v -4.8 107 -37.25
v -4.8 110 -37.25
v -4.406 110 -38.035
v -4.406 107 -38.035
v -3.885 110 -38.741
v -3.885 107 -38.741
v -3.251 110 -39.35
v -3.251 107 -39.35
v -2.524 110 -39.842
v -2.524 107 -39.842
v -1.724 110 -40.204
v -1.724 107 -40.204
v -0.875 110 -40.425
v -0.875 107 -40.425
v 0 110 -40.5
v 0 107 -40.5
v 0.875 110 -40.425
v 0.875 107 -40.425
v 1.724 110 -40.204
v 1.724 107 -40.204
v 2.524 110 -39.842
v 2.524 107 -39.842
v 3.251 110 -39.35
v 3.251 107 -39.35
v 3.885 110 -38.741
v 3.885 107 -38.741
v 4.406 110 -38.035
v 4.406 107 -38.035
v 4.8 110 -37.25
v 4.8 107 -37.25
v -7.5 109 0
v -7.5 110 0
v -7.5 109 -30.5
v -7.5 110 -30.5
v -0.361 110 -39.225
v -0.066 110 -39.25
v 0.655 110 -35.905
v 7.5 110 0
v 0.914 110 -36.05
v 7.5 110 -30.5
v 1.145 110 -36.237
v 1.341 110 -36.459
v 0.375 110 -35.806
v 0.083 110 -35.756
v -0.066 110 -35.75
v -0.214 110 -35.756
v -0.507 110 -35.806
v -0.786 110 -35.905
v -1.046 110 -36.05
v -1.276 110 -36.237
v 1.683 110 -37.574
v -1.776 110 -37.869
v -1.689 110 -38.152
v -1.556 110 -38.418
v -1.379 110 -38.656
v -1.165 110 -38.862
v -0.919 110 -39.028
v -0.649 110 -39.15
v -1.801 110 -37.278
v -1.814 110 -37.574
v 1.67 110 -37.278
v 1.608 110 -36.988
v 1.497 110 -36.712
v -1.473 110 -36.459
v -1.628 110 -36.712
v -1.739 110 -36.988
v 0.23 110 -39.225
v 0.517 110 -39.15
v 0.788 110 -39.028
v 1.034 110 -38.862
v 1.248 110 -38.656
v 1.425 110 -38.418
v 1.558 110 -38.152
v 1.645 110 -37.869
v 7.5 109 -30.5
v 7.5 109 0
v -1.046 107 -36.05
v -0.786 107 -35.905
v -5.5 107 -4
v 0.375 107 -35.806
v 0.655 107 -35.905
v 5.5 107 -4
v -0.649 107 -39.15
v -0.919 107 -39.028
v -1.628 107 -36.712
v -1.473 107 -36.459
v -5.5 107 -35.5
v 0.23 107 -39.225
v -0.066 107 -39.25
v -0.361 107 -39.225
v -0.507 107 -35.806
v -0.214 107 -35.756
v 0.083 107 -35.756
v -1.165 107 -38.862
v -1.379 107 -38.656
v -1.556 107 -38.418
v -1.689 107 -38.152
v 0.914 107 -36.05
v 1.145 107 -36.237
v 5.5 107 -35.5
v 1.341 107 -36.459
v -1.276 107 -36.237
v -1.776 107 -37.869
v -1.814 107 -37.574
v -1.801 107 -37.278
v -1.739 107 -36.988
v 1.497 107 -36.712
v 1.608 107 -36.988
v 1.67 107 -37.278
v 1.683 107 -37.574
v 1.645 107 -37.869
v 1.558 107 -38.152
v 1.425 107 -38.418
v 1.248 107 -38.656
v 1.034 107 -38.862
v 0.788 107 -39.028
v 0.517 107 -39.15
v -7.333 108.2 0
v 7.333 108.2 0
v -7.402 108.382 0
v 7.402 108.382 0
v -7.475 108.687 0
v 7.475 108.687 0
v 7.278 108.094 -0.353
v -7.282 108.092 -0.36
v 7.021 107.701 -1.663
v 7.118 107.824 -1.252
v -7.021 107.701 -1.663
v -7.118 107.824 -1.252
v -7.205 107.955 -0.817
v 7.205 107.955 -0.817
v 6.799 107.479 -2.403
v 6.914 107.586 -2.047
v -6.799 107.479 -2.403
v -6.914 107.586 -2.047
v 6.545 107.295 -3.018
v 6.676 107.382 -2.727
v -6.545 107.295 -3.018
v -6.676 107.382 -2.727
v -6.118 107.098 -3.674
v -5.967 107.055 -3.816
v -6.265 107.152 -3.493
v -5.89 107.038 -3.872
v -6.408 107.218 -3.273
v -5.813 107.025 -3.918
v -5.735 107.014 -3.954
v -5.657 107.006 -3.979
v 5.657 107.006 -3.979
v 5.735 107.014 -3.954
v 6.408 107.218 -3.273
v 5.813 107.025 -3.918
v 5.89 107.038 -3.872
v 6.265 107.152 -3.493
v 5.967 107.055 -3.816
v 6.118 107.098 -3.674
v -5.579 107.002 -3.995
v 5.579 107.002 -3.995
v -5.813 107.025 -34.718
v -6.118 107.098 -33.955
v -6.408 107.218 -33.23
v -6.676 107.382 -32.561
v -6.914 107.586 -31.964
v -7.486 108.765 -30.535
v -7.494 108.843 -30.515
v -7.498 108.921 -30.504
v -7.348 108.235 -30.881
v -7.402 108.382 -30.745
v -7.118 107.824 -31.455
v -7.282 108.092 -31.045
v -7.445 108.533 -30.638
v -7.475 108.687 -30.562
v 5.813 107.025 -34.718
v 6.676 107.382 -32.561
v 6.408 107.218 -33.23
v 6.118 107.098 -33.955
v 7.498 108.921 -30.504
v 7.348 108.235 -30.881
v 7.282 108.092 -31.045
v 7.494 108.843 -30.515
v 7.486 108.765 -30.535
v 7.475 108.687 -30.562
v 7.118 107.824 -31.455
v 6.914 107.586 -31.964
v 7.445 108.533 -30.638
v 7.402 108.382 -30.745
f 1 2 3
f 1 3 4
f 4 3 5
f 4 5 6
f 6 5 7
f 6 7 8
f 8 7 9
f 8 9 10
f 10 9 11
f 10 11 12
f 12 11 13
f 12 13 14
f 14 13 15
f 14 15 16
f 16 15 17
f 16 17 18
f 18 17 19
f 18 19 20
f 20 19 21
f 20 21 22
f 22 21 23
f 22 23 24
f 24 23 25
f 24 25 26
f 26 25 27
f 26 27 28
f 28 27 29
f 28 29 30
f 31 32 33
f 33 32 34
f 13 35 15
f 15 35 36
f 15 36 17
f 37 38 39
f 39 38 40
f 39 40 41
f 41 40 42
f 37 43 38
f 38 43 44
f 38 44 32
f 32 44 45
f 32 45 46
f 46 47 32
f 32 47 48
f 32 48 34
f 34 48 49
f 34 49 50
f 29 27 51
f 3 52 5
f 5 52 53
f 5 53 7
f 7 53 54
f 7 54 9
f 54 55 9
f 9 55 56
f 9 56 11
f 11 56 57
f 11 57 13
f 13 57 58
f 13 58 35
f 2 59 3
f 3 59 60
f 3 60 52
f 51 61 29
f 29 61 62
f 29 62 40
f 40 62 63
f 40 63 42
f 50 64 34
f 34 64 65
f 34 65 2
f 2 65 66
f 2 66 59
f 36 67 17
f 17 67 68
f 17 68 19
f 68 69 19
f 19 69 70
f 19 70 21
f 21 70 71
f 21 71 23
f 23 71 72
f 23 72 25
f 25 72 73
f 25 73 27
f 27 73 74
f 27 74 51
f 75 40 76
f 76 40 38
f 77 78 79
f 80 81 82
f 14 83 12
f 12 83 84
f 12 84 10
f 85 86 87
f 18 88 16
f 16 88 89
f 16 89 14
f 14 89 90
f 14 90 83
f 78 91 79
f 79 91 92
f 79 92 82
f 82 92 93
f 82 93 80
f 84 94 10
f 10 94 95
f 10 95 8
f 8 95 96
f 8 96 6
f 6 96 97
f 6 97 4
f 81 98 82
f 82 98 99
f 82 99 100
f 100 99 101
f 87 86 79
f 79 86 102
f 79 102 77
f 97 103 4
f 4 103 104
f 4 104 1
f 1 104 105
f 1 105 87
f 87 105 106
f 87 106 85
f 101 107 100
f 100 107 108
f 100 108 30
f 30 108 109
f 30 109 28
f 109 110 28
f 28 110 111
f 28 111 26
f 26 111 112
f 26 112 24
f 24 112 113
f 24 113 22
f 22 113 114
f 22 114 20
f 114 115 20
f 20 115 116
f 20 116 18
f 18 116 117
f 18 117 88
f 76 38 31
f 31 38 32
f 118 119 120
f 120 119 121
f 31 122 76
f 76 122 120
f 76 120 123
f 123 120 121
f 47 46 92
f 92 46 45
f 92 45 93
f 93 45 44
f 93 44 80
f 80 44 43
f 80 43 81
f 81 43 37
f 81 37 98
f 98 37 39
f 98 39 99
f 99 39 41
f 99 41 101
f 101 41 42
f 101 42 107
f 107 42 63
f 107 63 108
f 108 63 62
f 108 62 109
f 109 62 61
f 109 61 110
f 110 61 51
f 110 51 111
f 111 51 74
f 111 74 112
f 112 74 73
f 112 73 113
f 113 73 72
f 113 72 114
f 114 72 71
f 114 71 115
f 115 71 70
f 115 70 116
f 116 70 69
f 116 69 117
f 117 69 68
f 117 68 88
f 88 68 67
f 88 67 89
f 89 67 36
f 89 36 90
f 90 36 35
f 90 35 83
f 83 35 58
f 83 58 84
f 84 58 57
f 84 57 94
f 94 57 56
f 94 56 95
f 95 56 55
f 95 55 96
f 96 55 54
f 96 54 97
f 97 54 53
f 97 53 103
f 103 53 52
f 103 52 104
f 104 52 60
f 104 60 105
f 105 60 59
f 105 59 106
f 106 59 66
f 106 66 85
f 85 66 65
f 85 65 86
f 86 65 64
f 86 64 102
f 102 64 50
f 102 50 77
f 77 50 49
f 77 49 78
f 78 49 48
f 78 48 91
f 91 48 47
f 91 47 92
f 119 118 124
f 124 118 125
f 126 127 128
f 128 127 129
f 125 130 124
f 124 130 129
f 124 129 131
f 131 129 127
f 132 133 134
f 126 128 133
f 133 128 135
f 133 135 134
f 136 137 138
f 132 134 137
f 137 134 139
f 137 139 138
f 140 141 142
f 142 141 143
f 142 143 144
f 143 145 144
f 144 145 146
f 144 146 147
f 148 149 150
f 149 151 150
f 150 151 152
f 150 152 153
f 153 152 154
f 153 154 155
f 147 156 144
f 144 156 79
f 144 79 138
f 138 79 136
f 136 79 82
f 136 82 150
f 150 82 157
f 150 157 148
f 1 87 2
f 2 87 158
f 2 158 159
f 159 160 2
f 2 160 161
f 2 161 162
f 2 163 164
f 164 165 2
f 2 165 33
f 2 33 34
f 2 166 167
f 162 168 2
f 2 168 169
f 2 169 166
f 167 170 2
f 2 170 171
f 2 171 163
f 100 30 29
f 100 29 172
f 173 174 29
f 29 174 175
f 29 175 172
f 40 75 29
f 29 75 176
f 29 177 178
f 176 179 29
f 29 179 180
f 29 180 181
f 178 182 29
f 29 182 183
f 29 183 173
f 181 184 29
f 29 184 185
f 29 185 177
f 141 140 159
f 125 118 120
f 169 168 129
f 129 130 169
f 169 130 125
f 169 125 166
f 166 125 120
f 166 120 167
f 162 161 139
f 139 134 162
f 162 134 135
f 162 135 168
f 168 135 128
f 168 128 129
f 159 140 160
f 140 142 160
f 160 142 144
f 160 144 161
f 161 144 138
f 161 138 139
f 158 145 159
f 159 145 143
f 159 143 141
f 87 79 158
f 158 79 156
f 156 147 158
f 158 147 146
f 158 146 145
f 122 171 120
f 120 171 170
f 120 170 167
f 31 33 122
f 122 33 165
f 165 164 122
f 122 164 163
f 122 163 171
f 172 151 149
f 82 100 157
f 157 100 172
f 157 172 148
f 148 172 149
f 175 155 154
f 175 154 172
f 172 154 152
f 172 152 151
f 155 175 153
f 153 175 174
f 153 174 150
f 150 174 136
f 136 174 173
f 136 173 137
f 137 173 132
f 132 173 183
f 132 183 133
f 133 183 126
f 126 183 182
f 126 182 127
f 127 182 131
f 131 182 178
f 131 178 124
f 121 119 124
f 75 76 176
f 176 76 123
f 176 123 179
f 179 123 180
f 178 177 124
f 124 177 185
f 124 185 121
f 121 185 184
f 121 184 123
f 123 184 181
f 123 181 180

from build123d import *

# Parameters (mm, degrees)
CROQUIS1_W              = 15
CROQUIS1_H              = 3
SALIENTE_EXTRUIR1_DEPTH = 40.5
CROQUIS2_OUTSIDE_W      = 25.658
CROQUIS2_OUTSIDE_H      = 51.158
CROQUIS2_OUTSIDE_W_2    = 15
CROQUIS2_OUTSIDE_H_2    = 40.5
CROQUIS2_OUTSIDE_R      = 1.75
CORTAR_EXTRUIR1_DEPTH   = 40.5
CHAFL_N1_SIZE           = 4
CHAFL_N1_SIZE2          = 1.2
CHAFL_N2_SIZE           = 4
CHAFL_N2_SIZE2          = 10
REDONDEO1_R             = 2
REDONDEO2_R             = 5.169615


with BuildPart() as part:
    # Croquis1 → Saliente-Extruir1 (new body)
    with BuildSketch(Plane.XY):
        with Locations((0, 108.5)):
            Rectangle(CROQUIS1_W, CROQUIS1_H)
    extrude(amount=-SALIENTE_EXTRUIR1_DEPTH)

    # Croquis2 outside → Cortar-Extruir1 (cut)
    # profile 1 of 2: a face of its own
    with BuildSketch(Plane.XZ.offset(-107)):
        with Locations((0, -20.25)):
            Rectangle(CROQUIS2_OUTSIDE_W, CROQUIS2_OUTSIDE_H)
        with Locations((0, -20.25)):
            Rectangle(CROQUIS2_OUTSIDE_W_2, CROQUIS2_OUTSIDE_H_2, mode=Mode.SUBTRACT)
    # profile 2 of 2: a face of its own
    with BuildSketch(Plane.XZ.offset(-107)):
        with Locations(Location((-0.065549886, -37.5, 0), (0, 0, 270))):
            Circle(CROQUIS2_OUTSIDE_R)
    extrude(amount=-CORTAR_EXTRUIR1_DEPTH, mode=Mode.SUBTRACT)

    # Chaflán1
    chafl_n1_edges = [part.edges().sort_by_distance(p)[0] for p in [
        (0, 107, 0),
    ]]
    chafl_n1_side = [part.faces().sort_by_distance(p)[0] for p in [
        (0.001054835, 107, -19.972411249),
    ]]
    chamfer(chafl_n1_edges, length=CHAFL_N1_SIZE, length2=CHAFL_N1_SIZE2, reference=chafl_n1_side[0])

    # Chaflán2
    chafl_n2_edges = [part.edges().sort_by_distance(p)[0] for p in [
        (7.5, 108.5, -40.5),
        (-7.5, 108.5, -40.5),
    ]]
    chafl_n2_side = [part.faces().sort_by_distance(p)[0] for p in [
        (0, 108.5, -40.5),
    ]]
    chamfer(chafl_n2_edges, length=CHAFL_N2_SIZE, length2=CHAFL_N2_SIZE2, reference=chafl_n2_side[0])

    # Redondeo1
    redondeo1_edges = [part.edges().sort_by_distance(p)[0] for p in [
        (-7.5, 107, -17.25),
        (7.5, 107, -17.25),
    ]]
    fillet(redondeo1_edges, radius=REDONDEO1_R)

    # Redondeo2
    redondeo2_edges = [part.edges().sort_by_distance(p)[0] for p in [
        (3.5, 108.5, -40.5),
        (-3.5, 108.5, -40.5),
    ]]
    fillet(redondeo2_edges, radius=REDONDEO2_R)


solid = part.part
